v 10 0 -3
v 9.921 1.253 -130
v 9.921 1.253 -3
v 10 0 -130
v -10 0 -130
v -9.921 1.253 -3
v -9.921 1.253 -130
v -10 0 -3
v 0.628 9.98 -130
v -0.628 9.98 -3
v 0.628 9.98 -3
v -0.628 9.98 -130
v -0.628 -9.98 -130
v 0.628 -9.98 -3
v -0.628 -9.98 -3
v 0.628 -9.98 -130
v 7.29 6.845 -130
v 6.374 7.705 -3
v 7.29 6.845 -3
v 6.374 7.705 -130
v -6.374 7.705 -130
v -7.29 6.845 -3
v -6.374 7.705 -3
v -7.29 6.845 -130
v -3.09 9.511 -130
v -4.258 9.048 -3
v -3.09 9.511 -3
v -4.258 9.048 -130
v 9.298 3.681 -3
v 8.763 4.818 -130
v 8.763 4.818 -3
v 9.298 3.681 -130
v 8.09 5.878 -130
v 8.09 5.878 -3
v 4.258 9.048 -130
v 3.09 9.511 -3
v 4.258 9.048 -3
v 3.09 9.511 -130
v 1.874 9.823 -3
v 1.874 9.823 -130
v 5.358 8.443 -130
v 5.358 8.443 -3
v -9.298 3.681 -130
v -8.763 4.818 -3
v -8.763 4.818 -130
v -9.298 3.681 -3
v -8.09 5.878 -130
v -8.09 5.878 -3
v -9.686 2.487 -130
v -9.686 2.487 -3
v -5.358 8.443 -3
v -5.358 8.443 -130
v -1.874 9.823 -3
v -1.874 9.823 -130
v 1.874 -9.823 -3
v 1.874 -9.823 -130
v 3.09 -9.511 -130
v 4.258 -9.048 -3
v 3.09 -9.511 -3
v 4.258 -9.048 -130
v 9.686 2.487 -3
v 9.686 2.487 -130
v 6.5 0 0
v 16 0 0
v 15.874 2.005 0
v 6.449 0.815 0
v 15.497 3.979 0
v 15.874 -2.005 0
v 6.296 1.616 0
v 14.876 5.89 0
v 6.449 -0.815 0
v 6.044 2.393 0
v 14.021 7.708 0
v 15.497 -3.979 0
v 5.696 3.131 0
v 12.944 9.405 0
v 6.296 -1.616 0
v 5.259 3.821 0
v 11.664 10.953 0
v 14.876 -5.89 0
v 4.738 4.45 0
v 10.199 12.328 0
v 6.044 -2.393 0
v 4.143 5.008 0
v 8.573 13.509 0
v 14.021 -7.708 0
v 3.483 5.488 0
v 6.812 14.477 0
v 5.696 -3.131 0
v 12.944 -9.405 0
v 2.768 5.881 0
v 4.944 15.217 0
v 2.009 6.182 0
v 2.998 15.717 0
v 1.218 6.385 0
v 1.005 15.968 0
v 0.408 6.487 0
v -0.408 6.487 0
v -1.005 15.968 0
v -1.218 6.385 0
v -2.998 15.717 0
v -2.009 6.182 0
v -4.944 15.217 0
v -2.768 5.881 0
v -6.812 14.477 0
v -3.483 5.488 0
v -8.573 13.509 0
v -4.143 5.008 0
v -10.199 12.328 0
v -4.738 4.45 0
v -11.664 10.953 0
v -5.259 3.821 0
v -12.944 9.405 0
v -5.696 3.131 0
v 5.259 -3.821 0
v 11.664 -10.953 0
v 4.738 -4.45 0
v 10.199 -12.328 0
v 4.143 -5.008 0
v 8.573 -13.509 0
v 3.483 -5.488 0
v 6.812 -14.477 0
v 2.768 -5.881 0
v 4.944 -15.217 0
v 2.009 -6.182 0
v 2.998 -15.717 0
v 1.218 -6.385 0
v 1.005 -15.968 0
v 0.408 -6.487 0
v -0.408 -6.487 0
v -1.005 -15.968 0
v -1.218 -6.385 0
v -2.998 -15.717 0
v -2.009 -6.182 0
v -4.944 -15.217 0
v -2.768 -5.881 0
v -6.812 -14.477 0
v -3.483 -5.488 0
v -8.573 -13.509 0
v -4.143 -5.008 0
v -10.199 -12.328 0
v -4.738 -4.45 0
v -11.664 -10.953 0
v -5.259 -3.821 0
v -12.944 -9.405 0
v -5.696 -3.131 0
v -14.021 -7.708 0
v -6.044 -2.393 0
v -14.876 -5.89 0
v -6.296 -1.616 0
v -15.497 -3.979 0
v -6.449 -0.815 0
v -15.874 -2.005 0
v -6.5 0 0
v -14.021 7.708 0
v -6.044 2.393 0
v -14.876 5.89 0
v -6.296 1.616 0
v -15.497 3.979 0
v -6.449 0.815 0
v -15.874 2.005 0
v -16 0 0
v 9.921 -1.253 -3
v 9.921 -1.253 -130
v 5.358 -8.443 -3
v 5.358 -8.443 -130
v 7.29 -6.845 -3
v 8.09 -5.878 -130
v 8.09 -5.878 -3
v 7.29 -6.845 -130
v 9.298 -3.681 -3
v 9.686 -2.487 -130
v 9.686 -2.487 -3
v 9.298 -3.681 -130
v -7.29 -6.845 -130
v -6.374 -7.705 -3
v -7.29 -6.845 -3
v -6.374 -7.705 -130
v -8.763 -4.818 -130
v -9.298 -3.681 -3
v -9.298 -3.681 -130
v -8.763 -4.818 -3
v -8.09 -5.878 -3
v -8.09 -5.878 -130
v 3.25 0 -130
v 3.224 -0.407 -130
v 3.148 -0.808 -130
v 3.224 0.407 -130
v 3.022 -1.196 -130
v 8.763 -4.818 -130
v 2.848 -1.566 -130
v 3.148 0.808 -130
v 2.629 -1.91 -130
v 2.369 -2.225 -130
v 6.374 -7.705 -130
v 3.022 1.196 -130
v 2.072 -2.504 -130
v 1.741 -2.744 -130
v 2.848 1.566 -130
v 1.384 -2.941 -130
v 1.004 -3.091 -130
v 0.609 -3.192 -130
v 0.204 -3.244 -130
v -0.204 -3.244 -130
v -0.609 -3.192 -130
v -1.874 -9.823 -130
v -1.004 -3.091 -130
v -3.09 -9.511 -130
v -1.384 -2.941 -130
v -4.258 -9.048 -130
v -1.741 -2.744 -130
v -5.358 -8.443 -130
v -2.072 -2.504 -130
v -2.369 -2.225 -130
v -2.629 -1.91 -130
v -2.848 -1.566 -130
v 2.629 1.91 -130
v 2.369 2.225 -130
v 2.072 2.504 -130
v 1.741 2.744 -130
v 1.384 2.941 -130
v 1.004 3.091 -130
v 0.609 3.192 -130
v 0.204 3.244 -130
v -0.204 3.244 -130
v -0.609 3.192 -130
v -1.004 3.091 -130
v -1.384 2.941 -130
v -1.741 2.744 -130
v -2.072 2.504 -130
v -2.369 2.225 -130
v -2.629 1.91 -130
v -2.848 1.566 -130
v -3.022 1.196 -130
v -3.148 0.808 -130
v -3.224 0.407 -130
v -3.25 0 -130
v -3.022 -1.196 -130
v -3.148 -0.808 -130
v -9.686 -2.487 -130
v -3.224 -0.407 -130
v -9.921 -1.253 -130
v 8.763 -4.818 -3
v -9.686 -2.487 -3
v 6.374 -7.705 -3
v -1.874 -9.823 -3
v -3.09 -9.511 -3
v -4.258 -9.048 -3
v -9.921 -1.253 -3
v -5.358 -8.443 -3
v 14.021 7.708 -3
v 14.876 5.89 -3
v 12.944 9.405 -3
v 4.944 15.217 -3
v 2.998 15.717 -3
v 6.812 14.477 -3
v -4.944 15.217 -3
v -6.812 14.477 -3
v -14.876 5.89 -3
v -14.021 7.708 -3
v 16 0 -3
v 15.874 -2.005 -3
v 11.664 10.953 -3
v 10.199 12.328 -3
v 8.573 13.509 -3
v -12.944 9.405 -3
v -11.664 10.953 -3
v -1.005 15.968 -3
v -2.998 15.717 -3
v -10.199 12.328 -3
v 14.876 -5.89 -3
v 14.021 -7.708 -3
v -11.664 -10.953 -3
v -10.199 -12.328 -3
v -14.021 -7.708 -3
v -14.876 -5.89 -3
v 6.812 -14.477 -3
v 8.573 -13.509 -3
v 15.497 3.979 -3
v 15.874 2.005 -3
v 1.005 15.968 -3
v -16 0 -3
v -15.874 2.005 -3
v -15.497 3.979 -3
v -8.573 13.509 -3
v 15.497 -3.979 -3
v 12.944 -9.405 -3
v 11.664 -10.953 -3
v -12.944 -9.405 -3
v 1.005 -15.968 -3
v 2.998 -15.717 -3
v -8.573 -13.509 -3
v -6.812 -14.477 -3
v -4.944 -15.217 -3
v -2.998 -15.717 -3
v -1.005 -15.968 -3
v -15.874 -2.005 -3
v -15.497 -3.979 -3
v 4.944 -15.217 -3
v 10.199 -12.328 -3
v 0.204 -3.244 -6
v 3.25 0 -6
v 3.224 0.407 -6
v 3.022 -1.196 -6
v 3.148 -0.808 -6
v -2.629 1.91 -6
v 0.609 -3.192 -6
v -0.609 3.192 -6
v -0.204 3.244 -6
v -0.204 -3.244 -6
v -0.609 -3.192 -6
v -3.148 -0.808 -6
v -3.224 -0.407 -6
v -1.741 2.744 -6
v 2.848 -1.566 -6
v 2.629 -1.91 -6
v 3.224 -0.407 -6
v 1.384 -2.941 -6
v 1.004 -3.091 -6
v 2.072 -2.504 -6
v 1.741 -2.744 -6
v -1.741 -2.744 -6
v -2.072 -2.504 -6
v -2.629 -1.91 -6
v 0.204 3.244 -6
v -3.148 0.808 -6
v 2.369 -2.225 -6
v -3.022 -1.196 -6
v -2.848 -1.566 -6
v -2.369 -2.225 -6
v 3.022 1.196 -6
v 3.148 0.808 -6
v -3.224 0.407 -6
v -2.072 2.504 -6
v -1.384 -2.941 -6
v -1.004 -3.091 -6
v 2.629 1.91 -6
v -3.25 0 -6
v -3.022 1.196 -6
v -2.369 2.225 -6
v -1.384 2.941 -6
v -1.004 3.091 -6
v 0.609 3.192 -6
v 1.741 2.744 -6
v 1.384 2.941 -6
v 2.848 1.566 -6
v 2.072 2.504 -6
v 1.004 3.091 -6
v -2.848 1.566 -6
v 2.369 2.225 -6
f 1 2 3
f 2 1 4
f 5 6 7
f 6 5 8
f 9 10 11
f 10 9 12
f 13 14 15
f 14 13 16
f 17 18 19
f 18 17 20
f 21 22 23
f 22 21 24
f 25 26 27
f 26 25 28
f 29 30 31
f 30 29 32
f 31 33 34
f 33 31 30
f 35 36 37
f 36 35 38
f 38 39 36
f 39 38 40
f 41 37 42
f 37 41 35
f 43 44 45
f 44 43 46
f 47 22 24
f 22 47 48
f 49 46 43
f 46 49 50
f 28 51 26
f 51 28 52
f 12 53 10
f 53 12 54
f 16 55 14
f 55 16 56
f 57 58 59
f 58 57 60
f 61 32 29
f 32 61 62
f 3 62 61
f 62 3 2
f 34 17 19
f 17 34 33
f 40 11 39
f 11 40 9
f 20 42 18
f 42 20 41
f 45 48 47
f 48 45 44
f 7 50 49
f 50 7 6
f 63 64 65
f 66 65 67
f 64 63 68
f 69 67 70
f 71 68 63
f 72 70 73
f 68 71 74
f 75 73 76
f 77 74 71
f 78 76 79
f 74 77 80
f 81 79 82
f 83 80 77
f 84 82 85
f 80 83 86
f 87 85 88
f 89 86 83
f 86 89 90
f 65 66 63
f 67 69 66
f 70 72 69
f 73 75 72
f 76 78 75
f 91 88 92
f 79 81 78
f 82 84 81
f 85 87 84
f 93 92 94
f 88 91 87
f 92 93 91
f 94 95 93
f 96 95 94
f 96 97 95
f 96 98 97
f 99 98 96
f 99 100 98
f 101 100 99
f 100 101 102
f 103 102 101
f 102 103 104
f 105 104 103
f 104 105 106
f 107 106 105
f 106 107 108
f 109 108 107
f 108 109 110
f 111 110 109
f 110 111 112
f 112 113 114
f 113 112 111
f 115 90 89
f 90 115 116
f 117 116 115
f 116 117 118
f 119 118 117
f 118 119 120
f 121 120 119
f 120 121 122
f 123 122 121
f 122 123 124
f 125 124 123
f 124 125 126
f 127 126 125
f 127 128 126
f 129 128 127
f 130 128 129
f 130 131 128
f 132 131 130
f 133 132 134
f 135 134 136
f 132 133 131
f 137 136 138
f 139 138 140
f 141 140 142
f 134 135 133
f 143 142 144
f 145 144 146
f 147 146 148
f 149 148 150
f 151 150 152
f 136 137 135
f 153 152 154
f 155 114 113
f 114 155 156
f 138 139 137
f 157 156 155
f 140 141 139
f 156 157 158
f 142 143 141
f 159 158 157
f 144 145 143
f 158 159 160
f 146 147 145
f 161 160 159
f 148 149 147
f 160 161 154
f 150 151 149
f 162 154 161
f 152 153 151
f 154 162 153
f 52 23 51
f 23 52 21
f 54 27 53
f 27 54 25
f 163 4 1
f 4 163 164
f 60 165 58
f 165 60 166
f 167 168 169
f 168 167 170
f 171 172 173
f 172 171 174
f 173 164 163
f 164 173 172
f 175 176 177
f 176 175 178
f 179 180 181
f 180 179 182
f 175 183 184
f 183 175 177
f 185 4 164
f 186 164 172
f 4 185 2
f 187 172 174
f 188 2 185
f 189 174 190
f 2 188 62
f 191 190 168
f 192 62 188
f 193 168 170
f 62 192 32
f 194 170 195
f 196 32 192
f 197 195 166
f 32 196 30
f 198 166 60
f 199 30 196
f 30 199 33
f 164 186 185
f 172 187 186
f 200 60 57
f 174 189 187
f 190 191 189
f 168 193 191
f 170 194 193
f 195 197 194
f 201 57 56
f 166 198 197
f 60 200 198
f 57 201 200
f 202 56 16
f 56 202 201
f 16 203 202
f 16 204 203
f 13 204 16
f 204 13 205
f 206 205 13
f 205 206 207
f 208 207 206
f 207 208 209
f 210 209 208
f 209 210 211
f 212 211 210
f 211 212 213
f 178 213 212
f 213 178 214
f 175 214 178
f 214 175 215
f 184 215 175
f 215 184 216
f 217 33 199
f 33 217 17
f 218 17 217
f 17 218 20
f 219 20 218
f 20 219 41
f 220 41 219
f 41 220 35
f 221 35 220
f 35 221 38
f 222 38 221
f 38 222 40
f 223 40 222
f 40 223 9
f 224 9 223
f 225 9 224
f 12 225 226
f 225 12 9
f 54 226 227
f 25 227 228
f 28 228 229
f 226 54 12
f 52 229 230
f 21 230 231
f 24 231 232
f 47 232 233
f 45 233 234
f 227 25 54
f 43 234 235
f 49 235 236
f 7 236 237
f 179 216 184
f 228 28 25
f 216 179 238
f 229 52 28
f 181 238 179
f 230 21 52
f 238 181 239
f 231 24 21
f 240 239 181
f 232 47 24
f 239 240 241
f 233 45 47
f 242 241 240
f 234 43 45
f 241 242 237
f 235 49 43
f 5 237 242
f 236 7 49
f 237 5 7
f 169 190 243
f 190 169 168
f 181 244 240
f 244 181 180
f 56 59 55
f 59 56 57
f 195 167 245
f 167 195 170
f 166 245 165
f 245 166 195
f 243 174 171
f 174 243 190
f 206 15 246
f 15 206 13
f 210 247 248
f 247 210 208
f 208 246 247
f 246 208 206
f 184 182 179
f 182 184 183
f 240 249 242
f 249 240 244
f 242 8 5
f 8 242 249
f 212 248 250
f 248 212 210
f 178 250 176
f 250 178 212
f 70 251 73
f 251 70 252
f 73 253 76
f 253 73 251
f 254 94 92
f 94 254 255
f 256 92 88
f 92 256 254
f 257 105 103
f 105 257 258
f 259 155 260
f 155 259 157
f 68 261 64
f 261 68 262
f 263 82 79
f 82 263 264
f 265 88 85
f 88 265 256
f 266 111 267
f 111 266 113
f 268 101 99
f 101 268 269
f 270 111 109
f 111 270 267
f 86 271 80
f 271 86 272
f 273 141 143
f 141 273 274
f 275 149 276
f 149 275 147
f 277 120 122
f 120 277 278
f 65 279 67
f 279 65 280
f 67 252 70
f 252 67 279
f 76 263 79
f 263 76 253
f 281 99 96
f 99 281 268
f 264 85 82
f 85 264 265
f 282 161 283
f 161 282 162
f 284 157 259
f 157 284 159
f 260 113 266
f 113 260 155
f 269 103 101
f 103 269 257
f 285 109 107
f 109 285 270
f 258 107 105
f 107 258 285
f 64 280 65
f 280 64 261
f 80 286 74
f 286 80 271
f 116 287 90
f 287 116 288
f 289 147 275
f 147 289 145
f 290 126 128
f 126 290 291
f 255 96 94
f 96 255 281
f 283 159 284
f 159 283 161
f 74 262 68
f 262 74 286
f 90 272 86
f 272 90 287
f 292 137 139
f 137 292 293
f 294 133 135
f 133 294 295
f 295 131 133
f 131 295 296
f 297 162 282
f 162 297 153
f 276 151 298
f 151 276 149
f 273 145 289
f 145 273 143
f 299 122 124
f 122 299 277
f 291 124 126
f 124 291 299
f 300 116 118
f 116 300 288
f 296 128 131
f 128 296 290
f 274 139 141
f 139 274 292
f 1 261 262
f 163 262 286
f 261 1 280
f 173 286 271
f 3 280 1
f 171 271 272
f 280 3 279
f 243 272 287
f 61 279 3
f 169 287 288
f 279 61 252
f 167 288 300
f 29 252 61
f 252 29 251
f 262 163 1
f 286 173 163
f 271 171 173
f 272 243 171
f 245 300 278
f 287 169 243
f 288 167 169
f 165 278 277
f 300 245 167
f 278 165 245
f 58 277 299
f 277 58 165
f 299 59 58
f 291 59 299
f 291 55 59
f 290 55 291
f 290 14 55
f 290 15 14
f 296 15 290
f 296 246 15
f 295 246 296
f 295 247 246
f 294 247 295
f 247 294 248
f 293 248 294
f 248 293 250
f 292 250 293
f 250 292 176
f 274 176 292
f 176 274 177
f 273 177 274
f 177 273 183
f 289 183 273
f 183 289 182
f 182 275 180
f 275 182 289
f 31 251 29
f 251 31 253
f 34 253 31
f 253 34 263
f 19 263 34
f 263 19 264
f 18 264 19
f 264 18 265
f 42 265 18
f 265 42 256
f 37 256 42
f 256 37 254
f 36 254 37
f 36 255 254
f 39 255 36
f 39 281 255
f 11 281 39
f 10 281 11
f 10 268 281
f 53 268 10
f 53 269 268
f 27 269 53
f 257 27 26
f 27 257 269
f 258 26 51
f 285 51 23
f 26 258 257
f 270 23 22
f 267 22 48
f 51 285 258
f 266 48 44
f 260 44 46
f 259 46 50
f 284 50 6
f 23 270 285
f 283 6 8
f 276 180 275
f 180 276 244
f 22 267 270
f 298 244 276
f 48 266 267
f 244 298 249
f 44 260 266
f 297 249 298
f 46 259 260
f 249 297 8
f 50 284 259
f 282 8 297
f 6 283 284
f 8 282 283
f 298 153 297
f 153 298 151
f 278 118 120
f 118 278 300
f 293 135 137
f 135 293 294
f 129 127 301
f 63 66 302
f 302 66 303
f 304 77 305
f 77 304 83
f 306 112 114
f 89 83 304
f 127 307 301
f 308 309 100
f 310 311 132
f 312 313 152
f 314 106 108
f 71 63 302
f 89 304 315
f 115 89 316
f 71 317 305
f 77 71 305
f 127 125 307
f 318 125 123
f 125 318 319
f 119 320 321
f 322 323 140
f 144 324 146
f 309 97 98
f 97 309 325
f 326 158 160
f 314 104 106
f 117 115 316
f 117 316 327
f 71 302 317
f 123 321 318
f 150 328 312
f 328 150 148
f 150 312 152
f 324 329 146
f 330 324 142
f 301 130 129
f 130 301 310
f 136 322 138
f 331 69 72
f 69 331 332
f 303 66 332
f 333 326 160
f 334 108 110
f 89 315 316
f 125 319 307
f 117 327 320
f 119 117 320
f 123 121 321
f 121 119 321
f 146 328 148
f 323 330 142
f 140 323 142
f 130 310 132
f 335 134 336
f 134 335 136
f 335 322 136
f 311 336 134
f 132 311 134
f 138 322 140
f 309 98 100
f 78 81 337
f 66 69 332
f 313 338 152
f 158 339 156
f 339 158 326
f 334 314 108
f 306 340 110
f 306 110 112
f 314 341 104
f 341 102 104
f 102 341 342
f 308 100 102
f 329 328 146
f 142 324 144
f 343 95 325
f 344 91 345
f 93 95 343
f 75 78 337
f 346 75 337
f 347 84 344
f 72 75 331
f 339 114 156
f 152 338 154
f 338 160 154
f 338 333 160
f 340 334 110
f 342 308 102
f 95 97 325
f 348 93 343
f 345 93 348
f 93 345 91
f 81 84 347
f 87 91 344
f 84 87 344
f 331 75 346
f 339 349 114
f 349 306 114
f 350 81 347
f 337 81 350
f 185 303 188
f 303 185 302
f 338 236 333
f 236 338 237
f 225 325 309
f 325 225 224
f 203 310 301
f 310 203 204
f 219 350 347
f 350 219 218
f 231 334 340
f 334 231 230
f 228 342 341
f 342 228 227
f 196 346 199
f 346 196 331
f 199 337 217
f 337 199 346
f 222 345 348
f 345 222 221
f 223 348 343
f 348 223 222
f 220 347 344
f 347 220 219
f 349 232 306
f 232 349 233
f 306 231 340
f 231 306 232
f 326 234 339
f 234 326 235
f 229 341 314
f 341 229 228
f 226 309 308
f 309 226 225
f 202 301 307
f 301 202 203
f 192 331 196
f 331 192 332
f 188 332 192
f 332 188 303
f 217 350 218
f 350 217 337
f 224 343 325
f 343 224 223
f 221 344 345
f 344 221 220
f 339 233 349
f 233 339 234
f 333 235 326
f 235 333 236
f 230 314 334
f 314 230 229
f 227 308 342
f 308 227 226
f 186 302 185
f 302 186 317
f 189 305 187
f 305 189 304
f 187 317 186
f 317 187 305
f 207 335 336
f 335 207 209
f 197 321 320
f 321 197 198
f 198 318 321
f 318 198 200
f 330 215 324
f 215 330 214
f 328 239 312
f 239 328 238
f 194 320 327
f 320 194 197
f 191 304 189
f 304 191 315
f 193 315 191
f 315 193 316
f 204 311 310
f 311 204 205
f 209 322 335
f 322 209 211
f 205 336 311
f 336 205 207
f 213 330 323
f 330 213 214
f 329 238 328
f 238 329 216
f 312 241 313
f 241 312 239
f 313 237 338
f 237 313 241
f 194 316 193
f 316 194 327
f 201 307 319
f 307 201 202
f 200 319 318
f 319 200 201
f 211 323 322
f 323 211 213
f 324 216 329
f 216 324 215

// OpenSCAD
$fn = 50;


difference() {
	union() {
		translate(v = [0, 0, -130.0000000000]) {
			cylinder(h = 130, r = 10.0000000000);
		}
		translate(v = [0, 0, -3.0000000000]) {
			cylinder(h = 3, r = 16.0000000000);
		}
	}
	union() {
		translate(v = [0, 0, 0]) {
			rotate(a = [0, 0, 0]) {
				difference() {
					union() {
						#translate(v = [0, 0, -130.0000000000]) {
							cylinder(h = 130, r = 2.2500000000);
						}
						#translate(v = [0, 0, -6]) {
							cylinder(h = 6, r1 = 3.2500000000, r2 = 6.5000000000);
						}
						#translate(v = [0, 0, -130.0000000000]) {
							cylinder(h = 130, r = 3.2500000000);
						}
						#translate(v = [0, 0, -130.0000000000]) {
							cylinder(h = 130, r = 2.2500000000);
						}
					}
					union();
				}
			}
		}
	}
}
